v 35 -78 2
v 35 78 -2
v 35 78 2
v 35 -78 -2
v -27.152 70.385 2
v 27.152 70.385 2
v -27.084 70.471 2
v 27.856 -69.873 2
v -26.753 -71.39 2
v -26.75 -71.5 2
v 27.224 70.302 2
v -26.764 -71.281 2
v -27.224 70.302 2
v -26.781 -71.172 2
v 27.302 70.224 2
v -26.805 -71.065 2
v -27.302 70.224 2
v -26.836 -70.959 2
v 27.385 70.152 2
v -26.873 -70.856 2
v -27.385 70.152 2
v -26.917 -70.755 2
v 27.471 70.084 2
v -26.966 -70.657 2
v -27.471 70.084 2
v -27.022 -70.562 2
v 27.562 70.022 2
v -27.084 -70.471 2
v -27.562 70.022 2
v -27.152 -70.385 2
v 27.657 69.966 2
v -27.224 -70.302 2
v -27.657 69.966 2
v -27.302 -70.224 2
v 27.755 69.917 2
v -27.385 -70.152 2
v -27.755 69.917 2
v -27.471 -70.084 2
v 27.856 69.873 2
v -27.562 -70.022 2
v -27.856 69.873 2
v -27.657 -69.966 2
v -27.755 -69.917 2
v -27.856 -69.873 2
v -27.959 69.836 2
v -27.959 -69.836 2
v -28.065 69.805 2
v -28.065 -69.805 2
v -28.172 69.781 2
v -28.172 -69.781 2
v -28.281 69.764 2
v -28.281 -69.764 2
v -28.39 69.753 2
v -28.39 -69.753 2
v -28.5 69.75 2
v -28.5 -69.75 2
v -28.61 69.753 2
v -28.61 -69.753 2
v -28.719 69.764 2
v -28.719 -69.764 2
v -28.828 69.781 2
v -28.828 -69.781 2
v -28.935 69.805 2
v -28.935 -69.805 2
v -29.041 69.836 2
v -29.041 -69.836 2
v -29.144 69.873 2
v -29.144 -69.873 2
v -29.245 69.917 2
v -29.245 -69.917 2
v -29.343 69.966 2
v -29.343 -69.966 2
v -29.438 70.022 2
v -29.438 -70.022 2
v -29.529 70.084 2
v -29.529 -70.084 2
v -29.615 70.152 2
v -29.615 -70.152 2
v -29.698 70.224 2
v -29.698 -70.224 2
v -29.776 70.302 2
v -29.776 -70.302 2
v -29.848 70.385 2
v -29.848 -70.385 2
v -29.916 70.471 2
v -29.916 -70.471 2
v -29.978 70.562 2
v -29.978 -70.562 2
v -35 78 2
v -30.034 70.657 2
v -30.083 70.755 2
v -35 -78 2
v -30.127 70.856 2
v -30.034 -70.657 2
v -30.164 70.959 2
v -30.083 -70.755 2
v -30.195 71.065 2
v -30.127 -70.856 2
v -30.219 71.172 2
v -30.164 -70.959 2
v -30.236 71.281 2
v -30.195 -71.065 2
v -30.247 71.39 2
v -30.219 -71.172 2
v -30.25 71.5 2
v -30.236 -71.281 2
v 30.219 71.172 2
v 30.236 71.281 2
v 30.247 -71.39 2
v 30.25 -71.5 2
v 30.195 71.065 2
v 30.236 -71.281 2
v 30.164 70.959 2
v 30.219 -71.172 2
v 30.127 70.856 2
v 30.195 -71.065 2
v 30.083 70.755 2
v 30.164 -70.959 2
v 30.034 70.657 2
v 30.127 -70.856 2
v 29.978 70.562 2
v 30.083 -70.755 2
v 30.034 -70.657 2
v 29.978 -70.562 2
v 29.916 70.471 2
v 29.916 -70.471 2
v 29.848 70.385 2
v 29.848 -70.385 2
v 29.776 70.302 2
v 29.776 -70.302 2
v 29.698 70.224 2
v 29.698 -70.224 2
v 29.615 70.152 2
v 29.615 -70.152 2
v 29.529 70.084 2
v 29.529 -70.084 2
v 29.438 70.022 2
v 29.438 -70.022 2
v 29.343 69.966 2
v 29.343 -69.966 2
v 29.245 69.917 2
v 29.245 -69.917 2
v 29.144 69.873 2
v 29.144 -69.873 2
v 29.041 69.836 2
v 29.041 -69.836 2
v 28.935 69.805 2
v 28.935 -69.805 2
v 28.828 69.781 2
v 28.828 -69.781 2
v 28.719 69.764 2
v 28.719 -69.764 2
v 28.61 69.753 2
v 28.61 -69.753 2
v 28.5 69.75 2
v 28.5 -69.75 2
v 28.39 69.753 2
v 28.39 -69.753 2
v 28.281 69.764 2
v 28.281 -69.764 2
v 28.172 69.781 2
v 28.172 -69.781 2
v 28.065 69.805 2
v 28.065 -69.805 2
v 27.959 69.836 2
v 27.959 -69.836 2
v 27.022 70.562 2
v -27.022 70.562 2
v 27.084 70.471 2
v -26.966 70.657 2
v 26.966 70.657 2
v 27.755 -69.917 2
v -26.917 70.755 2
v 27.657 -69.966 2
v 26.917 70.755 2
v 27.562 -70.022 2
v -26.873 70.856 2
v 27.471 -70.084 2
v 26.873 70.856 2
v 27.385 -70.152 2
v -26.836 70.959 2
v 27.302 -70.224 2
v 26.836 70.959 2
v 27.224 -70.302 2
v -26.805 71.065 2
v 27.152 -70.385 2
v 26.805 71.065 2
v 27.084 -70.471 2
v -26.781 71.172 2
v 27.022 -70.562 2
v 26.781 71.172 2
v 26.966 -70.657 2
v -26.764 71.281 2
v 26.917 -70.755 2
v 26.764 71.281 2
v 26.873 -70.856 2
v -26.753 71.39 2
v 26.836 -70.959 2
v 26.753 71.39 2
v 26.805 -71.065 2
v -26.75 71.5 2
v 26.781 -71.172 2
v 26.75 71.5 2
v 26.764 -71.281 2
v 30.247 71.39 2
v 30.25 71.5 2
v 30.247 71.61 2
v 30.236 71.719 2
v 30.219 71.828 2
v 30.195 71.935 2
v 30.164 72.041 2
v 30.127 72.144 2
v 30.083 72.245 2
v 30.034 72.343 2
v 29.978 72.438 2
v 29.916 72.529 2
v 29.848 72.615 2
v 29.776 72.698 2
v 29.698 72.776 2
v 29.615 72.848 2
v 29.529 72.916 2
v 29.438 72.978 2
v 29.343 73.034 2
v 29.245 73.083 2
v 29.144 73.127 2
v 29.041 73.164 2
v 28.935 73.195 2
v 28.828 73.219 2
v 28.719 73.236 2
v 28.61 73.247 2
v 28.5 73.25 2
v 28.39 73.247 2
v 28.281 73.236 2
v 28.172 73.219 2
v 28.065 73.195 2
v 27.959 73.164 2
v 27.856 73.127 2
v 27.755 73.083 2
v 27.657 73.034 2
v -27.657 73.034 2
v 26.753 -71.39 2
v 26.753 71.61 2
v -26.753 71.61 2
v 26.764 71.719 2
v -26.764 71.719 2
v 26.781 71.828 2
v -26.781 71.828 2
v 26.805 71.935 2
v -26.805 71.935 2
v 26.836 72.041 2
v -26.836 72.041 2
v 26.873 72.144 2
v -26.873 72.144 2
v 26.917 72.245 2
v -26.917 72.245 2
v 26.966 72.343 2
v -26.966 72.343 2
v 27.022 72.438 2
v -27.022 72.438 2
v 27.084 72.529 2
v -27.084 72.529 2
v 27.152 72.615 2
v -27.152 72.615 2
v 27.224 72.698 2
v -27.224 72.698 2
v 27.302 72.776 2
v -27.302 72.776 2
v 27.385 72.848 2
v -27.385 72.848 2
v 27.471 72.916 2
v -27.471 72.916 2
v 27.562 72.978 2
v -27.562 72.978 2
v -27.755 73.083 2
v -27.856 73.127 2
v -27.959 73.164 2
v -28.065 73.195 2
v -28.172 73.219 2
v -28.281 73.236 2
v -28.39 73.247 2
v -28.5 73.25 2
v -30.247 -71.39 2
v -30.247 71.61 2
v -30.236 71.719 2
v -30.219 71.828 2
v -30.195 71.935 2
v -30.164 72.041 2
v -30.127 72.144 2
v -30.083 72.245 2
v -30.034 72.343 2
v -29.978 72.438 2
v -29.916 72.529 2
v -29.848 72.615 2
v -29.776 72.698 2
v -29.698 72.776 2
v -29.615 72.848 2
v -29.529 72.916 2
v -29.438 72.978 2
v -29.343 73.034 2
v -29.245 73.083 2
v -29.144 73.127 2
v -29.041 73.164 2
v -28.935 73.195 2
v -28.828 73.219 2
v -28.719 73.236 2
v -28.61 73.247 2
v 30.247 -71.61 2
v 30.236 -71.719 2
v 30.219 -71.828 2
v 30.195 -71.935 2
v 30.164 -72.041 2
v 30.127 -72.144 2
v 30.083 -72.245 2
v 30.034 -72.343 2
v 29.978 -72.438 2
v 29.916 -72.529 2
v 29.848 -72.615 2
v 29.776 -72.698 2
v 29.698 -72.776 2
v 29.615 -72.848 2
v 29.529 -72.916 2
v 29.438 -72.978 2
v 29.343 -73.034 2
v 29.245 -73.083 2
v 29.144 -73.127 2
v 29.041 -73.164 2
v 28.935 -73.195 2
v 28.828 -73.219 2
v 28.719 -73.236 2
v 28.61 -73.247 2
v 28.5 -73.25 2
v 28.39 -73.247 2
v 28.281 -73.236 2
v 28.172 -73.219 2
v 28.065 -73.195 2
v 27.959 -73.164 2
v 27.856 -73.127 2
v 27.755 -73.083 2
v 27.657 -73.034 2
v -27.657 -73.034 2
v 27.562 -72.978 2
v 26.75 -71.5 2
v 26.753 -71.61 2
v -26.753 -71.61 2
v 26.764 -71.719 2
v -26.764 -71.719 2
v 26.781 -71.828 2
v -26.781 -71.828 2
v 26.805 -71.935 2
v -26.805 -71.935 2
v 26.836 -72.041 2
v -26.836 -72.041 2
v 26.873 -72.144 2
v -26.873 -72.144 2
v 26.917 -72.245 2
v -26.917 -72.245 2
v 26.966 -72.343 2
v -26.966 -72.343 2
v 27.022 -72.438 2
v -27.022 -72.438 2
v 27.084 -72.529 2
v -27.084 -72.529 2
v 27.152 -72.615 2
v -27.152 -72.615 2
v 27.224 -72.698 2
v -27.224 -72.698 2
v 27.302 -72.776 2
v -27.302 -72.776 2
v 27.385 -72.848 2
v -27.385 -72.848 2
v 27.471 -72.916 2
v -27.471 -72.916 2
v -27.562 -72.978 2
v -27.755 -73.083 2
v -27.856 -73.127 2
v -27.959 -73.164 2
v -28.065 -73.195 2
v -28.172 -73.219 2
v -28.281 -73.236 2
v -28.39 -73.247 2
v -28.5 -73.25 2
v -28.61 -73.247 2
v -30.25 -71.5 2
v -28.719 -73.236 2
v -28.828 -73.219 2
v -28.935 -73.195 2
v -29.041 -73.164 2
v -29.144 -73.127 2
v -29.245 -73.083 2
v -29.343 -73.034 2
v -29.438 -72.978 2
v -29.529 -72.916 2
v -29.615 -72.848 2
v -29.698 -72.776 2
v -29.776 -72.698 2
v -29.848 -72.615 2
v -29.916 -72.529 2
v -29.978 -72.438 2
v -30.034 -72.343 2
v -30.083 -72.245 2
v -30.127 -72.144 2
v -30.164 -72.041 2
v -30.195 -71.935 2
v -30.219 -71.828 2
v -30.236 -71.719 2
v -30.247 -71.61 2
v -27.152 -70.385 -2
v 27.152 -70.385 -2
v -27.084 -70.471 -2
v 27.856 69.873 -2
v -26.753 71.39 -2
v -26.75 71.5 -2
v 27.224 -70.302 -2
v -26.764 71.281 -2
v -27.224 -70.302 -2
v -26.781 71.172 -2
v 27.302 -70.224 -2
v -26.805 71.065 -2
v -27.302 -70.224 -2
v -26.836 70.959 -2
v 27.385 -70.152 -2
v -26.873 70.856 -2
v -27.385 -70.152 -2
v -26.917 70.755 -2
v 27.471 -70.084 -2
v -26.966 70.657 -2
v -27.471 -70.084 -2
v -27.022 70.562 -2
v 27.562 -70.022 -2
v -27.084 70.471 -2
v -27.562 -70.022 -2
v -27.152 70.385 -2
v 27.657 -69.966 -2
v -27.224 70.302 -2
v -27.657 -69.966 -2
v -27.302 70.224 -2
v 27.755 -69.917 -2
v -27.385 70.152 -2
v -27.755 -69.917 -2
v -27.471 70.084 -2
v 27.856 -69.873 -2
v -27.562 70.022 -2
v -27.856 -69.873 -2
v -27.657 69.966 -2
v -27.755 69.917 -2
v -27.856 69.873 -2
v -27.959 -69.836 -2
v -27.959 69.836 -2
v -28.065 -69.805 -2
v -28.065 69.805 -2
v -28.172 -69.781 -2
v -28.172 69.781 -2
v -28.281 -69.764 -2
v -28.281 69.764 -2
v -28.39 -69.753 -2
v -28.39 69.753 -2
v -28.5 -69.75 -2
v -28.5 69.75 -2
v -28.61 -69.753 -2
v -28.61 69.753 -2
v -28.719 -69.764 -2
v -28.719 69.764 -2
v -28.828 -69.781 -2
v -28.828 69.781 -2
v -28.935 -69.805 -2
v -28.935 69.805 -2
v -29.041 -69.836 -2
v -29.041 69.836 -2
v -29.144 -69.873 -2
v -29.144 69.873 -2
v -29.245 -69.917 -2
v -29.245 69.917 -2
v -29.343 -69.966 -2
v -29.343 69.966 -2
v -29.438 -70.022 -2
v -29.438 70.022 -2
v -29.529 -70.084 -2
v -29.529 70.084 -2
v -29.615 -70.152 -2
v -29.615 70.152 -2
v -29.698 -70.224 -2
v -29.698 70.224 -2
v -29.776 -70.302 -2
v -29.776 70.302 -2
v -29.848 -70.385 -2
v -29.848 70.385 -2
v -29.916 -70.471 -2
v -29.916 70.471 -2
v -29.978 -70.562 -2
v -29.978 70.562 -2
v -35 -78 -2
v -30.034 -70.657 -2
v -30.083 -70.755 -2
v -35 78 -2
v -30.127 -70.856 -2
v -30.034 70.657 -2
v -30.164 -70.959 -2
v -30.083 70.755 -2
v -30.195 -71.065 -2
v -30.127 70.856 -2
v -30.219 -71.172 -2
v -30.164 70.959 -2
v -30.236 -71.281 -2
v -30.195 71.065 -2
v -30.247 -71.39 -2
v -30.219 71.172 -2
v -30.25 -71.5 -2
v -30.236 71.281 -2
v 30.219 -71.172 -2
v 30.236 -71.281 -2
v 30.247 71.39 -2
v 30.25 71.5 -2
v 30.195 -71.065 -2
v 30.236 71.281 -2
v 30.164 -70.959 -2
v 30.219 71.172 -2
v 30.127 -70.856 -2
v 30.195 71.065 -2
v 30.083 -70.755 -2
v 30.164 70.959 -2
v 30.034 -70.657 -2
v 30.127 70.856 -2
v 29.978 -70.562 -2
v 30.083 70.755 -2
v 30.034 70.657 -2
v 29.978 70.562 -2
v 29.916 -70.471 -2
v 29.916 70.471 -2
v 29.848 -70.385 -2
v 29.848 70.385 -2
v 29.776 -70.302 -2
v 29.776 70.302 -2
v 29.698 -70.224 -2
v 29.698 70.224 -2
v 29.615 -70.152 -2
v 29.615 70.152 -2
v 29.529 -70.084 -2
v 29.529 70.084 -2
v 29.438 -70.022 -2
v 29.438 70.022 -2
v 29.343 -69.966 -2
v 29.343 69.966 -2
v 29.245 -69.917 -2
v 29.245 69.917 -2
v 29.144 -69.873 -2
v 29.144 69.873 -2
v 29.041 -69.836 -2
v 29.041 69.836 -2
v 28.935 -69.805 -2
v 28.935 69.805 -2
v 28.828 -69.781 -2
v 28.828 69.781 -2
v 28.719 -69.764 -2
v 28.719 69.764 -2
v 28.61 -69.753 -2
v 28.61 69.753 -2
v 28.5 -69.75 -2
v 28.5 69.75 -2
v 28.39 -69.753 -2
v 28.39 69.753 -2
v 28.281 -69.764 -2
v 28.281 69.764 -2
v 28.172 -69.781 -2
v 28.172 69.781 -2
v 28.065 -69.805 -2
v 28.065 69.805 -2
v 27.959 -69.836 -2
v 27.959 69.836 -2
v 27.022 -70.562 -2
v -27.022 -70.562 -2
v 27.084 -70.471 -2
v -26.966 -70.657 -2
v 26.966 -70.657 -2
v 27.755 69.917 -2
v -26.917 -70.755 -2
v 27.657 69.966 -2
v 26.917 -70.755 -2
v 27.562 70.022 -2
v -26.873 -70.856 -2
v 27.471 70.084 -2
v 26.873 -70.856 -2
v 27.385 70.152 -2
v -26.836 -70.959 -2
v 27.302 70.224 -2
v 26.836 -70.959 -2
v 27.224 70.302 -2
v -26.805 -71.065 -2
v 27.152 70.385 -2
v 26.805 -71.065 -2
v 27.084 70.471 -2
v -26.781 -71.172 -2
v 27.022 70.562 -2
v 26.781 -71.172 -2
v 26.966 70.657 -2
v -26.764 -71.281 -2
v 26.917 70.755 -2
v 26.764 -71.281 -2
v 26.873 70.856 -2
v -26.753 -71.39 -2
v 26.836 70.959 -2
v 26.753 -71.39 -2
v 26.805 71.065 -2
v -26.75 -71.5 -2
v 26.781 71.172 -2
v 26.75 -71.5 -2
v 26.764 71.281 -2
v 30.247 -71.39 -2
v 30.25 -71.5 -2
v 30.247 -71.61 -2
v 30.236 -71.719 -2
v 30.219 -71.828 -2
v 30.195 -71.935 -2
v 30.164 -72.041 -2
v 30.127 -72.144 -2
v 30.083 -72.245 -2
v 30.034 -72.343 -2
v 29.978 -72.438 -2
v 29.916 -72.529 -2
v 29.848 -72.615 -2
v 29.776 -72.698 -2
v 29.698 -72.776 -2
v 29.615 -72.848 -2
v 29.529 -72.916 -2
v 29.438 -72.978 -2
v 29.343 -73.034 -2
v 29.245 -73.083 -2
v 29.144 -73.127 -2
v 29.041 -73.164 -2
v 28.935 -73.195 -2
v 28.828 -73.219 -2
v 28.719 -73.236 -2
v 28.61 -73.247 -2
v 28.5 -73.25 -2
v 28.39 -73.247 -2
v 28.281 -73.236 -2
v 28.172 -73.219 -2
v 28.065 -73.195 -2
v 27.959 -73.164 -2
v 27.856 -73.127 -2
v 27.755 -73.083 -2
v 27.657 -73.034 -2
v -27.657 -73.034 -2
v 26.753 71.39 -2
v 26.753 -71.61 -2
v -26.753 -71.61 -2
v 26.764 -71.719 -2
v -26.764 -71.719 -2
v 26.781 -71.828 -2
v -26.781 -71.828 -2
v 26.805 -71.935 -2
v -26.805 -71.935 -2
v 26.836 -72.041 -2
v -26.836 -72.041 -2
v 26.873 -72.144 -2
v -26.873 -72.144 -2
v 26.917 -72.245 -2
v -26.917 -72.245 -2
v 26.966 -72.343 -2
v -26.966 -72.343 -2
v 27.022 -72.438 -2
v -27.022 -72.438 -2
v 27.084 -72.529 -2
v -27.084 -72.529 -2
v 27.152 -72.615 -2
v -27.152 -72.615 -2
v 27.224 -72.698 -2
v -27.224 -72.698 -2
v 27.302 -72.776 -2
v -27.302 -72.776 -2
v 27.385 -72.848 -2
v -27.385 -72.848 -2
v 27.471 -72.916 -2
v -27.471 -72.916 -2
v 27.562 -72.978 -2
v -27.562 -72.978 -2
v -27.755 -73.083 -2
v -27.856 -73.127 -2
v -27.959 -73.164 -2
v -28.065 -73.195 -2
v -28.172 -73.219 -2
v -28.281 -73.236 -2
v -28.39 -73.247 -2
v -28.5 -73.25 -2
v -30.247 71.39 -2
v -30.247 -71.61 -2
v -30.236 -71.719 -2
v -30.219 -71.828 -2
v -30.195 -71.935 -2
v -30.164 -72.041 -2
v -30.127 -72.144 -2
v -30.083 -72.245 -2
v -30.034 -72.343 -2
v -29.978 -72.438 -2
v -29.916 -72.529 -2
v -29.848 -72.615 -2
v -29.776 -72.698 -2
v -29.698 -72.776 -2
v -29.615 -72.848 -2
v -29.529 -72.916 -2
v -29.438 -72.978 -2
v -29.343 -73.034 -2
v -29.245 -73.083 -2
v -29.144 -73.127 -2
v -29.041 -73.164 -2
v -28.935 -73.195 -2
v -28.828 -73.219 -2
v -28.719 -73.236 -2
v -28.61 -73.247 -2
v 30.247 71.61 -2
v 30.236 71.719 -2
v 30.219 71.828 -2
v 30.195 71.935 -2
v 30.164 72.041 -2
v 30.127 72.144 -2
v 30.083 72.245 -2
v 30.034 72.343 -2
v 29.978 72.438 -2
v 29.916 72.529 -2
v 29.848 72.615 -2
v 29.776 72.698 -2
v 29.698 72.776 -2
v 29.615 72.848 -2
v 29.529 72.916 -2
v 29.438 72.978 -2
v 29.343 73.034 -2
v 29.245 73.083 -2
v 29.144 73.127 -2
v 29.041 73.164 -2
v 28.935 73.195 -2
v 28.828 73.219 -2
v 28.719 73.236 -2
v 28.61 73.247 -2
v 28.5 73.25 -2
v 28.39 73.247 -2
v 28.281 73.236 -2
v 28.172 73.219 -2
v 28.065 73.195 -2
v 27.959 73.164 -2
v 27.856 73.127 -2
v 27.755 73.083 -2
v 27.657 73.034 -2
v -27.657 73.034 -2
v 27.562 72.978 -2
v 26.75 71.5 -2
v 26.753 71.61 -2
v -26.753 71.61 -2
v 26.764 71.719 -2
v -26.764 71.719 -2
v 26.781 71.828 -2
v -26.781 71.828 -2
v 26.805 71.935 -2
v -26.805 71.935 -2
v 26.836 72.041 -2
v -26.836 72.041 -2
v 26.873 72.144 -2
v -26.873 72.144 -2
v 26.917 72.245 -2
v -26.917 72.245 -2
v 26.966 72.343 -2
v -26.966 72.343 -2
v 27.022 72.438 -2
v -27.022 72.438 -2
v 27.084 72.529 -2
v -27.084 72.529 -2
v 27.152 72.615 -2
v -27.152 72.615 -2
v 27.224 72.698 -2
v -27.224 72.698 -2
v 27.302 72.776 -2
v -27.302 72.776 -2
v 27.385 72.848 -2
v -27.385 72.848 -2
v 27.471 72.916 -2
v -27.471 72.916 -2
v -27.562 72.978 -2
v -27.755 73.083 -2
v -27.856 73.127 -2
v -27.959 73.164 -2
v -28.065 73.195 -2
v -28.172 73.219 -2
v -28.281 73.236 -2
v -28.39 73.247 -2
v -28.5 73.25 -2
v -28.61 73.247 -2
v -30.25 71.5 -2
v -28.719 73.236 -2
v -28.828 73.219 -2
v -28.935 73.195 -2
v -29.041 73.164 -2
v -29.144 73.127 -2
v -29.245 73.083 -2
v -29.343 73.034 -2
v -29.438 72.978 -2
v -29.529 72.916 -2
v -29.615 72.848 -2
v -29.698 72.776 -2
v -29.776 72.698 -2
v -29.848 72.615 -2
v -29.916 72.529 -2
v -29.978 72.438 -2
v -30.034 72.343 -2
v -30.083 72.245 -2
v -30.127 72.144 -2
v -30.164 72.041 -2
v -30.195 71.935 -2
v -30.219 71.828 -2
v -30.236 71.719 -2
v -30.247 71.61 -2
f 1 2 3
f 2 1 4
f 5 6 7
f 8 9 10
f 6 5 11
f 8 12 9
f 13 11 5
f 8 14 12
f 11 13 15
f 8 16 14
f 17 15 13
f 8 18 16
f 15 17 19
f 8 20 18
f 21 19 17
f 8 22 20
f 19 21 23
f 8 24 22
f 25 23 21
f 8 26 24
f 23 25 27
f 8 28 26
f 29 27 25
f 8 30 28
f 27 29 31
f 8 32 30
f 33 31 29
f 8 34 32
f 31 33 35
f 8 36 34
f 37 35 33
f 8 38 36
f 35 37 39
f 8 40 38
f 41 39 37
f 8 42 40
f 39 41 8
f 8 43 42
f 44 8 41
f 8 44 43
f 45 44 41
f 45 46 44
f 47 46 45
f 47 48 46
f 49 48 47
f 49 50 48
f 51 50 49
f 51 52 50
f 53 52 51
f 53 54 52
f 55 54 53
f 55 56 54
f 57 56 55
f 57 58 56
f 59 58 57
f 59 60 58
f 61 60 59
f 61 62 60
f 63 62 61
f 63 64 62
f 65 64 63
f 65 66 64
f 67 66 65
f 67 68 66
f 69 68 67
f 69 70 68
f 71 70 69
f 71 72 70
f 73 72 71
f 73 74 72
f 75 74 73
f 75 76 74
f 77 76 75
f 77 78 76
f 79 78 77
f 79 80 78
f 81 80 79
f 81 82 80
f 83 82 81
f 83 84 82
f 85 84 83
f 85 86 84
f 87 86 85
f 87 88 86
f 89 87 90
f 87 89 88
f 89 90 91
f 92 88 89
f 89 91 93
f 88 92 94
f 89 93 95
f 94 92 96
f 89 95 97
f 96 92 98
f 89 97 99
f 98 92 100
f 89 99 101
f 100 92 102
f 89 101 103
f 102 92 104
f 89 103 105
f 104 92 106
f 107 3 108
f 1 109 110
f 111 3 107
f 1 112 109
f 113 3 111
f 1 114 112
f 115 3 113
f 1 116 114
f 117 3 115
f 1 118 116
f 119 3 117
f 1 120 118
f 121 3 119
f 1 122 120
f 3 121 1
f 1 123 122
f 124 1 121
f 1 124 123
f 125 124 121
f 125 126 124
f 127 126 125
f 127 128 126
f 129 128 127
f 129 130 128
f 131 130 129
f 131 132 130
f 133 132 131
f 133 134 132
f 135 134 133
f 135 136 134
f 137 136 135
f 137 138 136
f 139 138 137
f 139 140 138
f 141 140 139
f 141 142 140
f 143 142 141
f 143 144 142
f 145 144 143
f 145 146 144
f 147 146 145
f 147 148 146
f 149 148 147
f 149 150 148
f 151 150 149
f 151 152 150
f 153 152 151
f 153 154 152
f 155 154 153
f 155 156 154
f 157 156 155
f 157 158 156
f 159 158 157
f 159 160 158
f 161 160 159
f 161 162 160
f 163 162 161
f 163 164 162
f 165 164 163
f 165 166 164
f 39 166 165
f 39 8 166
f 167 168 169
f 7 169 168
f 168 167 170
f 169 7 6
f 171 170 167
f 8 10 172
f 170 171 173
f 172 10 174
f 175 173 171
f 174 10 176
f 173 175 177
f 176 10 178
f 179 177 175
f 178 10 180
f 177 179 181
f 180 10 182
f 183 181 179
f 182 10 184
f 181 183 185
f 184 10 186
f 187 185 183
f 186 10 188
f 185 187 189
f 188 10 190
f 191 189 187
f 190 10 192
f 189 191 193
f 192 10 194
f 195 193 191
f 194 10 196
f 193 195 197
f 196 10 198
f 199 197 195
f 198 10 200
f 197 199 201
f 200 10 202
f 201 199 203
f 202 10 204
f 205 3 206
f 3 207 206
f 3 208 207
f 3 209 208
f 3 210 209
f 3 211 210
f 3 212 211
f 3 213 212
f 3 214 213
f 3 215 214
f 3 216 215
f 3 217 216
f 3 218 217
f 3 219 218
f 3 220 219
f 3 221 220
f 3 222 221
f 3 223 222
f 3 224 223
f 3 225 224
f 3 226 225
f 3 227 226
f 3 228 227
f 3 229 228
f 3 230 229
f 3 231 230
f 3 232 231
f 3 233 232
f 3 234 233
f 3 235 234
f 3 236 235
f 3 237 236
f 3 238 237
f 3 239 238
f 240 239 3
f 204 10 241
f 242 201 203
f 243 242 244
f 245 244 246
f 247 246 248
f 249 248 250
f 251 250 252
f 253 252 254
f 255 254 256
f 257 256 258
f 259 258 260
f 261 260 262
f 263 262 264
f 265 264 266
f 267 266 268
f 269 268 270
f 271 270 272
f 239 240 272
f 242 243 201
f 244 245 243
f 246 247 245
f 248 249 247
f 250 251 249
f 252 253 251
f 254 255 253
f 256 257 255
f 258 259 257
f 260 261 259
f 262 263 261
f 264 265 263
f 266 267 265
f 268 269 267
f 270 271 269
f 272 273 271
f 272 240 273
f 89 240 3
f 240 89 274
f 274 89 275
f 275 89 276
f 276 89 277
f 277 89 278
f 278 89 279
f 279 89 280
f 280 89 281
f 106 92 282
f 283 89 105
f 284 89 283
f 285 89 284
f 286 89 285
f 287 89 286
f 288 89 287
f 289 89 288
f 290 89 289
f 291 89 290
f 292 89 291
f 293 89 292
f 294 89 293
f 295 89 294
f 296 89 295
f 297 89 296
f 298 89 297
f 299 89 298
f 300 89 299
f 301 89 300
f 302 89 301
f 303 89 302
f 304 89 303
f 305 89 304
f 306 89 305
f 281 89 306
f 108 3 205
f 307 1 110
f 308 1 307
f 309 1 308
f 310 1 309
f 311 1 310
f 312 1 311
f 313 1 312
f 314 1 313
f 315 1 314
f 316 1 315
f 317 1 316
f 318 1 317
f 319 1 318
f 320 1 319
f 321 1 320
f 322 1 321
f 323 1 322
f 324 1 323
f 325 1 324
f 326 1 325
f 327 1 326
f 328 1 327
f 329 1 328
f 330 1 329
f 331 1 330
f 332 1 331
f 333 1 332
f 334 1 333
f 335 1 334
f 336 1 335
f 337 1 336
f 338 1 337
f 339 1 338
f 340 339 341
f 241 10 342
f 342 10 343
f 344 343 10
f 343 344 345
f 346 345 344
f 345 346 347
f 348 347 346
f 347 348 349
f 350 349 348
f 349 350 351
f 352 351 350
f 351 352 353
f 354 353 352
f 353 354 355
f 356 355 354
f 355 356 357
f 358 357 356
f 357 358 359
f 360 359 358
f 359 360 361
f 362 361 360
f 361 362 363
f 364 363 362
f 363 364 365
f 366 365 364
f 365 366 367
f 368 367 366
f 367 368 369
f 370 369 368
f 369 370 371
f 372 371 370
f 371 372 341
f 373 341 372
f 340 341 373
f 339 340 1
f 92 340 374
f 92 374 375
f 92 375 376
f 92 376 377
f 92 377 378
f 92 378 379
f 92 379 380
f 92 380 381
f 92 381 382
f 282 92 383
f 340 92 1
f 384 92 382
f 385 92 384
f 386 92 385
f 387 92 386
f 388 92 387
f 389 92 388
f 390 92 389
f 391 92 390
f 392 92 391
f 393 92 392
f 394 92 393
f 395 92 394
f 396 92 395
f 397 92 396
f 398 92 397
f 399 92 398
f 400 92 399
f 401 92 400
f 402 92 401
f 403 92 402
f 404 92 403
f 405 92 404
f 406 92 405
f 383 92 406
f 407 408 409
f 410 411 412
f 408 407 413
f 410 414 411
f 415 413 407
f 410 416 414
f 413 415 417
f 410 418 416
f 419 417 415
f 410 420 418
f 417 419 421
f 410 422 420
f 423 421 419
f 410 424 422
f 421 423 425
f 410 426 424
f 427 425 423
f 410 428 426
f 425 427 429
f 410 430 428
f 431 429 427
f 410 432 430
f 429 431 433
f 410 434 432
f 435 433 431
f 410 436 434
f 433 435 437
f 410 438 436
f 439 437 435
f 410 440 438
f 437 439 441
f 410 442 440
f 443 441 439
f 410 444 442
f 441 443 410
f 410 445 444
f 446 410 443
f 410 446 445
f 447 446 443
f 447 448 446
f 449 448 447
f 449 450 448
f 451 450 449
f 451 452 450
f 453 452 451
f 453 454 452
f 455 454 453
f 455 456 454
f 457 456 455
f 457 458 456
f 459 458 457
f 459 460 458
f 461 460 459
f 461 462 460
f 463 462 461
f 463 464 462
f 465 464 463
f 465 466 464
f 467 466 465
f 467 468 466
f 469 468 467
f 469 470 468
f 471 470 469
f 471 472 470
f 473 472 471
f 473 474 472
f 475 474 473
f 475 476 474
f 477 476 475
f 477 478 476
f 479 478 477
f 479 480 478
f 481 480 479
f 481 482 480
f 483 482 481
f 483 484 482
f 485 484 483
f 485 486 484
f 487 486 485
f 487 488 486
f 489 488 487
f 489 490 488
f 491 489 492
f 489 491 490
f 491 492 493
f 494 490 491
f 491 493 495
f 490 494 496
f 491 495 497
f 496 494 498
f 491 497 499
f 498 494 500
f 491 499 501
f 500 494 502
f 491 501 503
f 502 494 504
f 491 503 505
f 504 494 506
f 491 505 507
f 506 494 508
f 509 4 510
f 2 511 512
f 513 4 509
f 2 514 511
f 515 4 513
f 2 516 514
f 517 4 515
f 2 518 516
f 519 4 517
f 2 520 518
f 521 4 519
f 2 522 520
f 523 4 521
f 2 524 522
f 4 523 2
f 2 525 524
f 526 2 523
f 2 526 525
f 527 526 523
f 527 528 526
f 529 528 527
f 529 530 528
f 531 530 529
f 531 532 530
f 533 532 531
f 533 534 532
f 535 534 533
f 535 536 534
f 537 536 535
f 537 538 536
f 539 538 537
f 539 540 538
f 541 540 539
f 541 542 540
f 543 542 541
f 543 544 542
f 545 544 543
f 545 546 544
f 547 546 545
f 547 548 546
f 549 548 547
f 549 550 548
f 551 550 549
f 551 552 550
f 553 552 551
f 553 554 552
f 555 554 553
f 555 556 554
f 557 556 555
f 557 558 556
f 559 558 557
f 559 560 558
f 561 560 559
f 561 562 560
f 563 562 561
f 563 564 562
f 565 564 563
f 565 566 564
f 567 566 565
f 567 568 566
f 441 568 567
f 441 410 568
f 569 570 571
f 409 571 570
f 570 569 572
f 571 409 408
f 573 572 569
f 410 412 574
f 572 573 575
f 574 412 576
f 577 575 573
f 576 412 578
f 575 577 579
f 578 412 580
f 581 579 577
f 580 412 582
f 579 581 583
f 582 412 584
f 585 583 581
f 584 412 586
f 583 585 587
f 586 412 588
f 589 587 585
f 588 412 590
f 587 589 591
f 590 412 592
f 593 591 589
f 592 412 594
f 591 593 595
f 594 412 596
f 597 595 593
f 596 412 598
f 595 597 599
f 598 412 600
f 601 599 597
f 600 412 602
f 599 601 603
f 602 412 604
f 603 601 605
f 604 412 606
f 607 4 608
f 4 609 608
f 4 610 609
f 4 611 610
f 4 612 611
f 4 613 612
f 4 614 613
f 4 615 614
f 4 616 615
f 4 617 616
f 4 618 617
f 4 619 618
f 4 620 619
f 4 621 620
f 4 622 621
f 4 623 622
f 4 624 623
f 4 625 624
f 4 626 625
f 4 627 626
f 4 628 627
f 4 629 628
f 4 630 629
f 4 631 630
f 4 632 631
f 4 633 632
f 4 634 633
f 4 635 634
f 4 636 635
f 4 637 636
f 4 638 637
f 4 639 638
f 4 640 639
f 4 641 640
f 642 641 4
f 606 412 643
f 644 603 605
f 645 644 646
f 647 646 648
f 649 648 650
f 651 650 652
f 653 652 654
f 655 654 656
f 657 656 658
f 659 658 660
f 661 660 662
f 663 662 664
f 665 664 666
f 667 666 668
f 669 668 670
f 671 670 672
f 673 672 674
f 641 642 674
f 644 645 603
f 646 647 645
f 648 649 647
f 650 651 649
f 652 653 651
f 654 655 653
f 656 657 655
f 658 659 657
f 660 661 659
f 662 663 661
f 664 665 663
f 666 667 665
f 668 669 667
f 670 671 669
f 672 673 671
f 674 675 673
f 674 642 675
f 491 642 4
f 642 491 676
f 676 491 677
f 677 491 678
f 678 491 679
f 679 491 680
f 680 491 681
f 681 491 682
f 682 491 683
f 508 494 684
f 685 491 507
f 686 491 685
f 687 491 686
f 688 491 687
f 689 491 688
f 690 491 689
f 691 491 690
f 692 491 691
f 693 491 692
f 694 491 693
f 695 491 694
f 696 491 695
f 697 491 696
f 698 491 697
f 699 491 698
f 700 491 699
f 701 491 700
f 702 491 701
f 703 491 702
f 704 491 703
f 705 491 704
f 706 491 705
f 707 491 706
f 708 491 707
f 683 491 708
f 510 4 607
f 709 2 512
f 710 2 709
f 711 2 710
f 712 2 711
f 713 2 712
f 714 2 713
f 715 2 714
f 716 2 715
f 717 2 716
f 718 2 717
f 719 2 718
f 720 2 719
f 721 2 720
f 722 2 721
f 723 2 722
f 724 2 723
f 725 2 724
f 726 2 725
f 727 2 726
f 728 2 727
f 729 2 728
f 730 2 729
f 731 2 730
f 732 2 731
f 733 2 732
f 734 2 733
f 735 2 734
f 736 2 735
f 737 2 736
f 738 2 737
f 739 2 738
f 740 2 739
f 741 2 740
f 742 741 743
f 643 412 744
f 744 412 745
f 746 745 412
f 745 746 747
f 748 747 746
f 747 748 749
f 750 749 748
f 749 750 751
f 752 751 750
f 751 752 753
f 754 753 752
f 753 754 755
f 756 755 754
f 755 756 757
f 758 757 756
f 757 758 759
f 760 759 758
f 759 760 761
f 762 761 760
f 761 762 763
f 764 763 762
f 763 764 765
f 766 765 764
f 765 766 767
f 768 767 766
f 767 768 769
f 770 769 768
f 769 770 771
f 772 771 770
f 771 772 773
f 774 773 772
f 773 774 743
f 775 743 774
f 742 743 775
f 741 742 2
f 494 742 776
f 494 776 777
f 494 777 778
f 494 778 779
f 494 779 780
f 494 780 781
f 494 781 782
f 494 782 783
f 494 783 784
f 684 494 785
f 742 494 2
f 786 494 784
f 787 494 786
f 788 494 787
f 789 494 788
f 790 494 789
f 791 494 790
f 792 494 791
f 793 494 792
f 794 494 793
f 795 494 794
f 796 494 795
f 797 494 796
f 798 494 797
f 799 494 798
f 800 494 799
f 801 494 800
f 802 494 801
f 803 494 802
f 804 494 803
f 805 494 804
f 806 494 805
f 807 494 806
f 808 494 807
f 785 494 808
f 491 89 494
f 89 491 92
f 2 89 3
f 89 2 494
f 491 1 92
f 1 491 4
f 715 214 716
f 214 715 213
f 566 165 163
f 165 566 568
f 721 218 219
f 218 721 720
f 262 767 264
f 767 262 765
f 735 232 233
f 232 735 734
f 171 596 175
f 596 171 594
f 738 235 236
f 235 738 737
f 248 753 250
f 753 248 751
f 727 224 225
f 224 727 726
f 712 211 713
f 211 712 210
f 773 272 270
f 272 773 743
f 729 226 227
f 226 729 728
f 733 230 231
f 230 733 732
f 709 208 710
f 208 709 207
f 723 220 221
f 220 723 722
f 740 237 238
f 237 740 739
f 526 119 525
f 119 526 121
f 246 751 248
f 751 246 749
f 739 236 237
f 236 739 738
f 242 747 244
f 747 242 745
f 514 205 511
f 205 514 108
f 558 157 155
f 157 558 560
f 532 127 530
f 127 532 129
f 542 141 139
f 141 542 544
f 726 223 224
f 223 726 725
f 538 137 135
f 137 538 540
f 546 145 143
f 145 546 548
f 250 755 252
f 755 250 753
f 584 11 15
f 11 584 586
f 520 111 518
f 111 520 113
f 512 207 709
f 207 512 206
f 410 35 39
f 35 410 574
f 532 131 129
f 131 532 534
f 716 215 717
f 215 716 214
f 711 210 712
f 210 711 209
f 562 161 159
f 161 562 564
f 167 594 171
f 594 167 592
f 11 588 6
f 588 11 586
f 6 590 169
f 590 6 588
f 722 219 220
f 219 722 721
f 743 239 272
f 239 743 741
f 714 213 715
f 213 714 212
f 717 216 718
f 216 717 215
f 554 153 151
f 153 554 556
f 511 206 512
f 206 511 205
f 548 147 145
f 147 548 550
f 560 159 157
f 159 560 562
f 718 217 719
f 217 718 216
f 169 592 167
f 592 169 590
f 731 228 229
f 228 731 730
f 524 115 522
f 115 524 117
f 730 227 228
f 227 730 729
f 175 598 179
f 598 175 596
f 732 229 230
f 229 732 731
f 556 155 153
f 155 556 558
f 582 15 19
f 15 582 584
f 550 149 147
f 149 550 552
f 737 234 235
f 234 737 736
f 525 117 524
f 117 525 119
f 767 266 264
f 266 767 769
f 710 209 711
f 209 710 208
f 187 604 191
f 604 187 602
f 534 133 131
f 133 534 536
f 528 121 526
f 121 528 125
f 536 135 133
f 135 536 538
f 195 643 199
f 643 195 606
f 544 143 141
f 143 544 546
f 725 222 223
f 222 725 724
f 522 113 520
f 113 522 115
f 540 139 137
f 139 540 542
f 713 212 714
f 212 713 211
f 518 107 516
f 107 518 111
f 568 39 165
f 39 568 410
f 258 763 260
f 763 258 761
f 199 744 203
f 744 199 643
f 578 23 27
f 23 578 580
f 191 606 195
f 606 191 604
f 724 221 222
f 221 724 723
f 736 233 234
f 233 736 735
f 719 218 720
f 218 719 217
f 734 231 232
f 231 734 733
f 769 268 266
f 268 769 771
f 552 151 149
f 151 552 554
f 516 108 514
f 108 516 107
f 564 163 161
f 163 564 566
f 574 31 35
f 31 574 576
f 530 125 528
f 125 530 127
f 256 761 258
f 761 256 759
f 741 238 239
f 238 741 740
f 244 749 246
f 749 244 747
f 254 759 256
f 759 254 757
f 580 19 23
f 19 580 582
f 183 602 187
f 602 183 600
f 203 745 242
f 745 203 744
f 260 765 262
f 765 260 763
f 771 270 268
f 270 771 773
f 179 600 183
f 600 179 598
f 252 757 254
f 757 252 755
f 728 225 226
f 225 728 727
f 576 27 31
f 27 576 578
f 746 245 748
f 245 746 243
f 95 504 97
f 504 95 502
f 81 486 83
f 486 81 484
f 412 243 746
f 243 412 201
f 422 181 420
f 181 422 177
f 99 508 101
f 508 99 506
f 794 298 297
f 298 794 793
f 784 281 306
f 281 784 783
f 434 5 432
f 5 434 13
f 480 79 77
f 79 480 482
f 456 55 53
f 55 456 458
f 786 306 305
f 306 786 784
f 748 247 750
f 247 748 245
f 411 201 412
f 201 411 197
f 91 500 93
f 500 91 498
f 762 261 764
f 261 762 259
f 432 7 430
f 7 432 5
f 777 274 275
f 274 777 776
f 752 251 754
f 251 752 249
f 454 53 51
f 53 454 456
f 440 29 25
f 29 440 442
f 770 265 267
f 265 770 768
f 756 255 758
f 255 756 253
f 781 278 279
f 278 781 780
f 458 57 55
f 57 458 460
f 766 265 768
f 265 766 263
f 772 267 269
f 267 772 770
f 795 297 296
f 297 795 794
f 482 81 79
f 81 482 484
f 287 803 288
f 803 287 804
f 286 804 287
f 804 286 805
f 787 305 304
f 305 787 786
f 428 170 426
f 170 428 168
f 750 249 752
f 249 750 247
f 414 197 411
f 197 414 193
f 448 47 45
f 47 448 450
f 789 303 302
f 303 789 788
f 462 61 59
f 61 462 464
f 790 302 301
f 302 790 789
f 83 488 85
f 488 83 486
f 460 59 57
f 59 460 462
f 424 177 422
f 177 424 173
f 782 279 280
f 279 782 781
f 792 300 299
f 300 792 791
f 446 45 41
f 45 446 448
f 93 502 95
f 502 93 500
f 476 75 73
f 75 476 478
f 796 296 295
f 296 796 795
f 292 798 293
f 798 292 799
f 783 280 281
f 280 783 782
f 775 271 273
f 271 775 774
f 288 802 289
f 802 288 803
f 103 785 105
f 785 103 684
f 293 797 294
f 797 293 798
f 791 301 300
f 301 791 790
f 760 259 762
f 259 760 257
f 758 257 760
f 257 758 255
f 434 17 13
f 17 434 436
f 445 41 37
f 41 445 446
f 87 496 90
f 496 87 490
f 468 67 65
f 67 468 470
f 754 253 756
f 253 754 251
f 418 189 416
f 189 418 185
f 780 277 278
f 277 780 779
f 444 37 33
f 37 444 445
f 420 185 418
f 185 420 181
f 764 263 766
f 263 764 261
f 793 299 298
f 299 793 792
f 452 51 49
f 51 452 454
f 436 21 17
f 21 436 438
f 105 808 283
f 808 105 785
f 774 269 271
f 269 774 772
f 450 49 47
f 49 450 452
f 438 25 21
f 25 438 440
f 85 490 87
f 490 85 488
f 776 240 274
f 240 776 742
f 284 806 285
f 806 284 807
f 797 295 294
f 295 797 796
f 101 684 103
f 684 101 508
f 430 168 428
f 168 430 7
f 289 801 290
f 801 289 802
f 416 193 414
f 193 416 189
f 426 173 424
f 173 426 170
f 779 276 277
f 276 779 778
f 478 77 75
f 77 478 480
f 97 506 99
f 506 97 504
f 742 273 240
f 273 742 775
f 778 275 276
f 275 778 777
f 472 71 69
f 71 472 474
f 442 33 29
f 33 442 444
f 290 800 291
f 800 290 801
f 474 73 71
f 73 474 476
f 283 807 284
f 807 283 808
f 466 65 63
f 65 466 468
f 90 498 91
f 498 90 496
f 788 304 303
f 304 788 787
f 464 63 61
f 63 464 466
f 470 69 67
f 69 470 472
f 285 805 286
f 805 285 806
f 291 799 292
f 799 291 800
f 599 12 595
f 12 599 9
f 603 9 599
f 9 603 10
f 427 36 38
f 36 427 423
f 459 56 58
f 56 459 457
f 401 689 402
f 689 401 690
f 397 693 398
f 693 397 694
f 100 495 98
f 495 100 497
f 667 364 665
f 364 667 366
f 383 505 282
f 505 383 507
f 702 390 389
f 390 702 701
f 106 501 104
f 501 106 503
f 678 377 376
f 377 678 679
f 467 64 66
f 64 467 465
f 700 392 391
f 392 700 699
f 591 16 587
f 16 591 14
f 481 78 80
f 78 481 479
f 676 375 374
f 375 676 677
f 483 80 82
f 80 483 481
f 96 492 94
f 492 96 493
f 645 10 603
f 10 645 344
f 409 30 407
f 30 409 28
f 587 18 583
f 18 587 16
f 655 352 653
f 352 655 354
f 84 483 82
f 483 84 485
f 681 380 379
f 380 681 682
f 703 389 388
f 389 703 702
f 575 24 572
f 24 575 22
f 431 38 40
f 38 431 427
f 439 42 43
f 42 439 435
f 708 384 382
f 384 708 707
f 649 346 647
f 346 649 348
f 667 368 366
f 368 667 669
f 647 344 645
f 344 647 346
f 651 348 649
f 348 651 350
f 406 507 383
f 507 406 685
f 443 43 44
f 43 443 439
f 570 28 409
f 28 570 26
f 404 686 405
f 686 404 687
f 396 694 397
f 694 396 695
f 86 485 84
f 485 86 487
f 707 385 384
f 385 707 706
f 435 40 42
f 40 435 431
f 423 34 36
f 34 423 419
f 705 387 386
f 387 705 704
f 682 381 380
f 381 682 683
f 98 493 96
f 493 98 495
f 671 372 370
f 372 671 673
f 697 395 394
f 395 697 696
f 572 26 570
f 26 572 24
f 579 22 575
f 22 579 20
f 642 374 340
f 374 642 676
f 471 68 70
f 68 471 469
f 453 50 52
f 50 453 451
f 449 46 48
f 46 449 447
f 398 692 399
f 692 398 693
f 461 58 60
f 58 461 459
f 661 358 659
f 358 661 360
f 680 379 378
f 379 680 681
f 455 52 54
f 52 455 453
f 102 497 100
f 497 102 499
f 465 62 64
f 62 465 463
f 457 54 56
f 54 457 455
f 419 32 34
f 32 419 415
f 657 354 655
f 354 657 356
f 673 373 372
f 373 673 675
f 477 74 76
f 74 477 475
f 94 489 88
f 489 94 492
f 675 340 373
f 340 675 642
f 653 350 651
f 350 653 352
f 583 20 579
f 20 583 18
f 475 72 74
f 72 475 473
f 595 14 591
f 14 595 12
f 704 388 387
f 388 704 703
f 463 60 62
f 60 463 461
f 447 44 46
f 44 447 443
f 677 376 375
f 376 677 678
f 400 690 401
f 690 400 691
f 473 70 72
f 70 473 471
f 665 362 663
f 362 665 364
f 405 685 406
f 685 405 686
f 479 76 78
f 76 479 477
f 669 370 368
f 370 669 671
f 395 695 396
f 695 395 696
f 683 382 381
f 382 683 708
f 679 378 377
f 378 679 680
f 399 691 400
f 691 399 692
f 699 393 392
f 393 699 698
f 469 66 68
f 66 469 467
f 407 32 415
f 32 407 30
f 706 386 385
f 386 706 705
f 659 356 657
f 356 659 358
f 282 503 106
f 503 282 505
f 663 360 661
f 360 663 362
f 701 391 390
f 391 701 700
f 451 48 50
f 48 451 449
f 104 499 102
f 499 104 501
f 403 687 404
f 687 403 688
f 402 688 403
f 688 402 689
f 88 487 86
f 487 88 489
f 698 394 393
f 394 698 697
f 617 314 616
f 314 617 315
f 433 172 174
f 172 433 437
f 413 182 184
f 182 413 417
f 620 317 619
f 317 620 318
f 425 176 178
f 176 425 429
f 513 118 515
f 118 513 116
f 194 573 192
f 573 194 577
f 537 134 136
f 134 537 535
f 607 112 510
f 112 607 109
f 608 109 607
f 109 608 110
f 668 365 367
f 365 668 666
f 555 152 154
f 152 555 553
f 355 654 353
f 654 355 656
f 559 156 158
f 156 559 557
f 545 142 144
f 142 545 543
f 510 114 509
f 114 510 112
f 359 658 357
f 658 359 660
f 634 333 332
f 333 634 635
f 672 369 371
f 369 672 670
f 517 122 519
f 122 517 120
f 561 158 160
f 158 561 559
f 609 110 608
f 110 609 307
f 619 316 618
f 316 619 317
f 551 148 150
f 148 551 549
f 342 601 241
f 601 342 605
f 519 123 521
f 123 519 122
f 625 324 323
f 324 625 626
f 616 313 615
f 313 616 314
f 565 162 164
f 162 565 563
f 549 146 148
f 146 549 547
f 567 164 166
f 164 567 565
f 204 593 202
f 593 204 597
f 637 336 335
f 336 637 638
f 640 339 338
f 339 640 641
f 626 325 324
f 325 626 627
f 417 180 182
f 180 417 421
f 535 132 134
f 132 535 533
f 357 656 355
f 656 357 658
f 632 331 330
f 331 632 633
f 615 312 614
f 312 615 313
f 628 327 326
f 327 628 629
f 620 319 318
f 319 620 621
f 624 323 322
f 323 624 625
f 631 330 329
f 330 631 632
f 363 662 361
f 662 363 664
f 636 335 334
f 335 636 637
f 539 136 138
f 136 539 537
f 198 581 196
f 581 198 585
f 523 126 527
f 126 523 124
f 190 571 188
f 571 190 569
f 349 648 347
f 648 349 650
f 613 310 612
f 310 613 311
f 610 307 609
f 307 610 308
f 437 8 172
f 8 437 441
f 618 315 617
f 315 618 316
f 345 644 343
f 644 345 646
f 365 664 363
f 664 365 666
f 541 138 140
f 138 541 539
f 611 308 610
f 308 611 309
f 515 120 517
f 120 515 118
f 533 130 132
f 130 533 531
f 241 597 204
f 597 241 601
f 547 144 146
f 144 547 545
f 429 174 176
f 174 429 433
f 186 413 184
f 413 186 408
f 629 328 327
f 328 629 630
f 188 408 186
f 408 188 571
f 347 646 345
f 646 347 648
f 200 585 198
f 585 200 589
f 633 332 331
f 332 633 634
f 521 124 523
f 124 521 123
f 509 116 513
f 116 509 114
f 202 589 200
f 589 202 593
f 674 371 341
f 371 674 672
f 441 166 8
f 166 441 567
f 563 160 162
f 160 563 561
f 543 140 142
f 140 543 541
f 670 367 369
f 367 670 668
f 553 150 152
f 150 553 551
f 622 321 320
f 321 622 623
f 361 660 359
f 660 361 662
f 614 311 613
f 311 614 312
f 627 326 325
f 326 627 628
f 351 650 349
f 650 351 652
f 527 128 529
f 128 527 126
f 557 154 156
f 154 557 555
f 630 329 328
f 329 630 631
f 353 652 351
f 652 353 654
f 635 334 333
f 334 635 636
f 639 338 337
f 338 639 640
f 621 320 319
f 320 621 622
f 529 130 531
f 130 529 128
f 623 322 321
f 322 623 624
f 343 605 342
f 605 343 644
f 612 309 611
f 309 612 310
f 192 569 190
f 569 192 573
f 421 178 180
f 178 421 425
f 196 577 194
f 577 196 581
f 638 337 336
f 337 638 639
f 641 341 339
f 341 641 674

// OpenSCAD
width = 70;
height = 156;
thickness = 4;
$fn = 20;

difference() {
    cube([width, height, thickness], center = true);

   // SCREW HOLES
   screw_hole = 3.5/2;
   dist_boarder = 6.5;

   color([1,0,0])
      translate([(width/2-dist_boarder),(height/2-dist_boarder), 0])
         cylinder(h= height+1, r = screw_hole, center = true, $fn=100);

   color([1,0,0])
      translate([(width/2-dist_boarder)*-1,(height/2-dist_boarder), 0])
         cylinder(h= height+1, r = screw_hole, center = true, $fn=100);

   color([1,0,0])
      translate([(width/2-dist_boarder)*-1,(height/2-dist_boarder)*-1, 0])
         cylinder(h= height+1, r = screw_hole, center = true, $fn=100);

   color([1,0,0])
      translate([(width/2-dist_boarder),(height/2-dist_boarder)*-1, 0])
         cylinder(h= height+1, r = screw_hole, center = true, $fn=100);




}
